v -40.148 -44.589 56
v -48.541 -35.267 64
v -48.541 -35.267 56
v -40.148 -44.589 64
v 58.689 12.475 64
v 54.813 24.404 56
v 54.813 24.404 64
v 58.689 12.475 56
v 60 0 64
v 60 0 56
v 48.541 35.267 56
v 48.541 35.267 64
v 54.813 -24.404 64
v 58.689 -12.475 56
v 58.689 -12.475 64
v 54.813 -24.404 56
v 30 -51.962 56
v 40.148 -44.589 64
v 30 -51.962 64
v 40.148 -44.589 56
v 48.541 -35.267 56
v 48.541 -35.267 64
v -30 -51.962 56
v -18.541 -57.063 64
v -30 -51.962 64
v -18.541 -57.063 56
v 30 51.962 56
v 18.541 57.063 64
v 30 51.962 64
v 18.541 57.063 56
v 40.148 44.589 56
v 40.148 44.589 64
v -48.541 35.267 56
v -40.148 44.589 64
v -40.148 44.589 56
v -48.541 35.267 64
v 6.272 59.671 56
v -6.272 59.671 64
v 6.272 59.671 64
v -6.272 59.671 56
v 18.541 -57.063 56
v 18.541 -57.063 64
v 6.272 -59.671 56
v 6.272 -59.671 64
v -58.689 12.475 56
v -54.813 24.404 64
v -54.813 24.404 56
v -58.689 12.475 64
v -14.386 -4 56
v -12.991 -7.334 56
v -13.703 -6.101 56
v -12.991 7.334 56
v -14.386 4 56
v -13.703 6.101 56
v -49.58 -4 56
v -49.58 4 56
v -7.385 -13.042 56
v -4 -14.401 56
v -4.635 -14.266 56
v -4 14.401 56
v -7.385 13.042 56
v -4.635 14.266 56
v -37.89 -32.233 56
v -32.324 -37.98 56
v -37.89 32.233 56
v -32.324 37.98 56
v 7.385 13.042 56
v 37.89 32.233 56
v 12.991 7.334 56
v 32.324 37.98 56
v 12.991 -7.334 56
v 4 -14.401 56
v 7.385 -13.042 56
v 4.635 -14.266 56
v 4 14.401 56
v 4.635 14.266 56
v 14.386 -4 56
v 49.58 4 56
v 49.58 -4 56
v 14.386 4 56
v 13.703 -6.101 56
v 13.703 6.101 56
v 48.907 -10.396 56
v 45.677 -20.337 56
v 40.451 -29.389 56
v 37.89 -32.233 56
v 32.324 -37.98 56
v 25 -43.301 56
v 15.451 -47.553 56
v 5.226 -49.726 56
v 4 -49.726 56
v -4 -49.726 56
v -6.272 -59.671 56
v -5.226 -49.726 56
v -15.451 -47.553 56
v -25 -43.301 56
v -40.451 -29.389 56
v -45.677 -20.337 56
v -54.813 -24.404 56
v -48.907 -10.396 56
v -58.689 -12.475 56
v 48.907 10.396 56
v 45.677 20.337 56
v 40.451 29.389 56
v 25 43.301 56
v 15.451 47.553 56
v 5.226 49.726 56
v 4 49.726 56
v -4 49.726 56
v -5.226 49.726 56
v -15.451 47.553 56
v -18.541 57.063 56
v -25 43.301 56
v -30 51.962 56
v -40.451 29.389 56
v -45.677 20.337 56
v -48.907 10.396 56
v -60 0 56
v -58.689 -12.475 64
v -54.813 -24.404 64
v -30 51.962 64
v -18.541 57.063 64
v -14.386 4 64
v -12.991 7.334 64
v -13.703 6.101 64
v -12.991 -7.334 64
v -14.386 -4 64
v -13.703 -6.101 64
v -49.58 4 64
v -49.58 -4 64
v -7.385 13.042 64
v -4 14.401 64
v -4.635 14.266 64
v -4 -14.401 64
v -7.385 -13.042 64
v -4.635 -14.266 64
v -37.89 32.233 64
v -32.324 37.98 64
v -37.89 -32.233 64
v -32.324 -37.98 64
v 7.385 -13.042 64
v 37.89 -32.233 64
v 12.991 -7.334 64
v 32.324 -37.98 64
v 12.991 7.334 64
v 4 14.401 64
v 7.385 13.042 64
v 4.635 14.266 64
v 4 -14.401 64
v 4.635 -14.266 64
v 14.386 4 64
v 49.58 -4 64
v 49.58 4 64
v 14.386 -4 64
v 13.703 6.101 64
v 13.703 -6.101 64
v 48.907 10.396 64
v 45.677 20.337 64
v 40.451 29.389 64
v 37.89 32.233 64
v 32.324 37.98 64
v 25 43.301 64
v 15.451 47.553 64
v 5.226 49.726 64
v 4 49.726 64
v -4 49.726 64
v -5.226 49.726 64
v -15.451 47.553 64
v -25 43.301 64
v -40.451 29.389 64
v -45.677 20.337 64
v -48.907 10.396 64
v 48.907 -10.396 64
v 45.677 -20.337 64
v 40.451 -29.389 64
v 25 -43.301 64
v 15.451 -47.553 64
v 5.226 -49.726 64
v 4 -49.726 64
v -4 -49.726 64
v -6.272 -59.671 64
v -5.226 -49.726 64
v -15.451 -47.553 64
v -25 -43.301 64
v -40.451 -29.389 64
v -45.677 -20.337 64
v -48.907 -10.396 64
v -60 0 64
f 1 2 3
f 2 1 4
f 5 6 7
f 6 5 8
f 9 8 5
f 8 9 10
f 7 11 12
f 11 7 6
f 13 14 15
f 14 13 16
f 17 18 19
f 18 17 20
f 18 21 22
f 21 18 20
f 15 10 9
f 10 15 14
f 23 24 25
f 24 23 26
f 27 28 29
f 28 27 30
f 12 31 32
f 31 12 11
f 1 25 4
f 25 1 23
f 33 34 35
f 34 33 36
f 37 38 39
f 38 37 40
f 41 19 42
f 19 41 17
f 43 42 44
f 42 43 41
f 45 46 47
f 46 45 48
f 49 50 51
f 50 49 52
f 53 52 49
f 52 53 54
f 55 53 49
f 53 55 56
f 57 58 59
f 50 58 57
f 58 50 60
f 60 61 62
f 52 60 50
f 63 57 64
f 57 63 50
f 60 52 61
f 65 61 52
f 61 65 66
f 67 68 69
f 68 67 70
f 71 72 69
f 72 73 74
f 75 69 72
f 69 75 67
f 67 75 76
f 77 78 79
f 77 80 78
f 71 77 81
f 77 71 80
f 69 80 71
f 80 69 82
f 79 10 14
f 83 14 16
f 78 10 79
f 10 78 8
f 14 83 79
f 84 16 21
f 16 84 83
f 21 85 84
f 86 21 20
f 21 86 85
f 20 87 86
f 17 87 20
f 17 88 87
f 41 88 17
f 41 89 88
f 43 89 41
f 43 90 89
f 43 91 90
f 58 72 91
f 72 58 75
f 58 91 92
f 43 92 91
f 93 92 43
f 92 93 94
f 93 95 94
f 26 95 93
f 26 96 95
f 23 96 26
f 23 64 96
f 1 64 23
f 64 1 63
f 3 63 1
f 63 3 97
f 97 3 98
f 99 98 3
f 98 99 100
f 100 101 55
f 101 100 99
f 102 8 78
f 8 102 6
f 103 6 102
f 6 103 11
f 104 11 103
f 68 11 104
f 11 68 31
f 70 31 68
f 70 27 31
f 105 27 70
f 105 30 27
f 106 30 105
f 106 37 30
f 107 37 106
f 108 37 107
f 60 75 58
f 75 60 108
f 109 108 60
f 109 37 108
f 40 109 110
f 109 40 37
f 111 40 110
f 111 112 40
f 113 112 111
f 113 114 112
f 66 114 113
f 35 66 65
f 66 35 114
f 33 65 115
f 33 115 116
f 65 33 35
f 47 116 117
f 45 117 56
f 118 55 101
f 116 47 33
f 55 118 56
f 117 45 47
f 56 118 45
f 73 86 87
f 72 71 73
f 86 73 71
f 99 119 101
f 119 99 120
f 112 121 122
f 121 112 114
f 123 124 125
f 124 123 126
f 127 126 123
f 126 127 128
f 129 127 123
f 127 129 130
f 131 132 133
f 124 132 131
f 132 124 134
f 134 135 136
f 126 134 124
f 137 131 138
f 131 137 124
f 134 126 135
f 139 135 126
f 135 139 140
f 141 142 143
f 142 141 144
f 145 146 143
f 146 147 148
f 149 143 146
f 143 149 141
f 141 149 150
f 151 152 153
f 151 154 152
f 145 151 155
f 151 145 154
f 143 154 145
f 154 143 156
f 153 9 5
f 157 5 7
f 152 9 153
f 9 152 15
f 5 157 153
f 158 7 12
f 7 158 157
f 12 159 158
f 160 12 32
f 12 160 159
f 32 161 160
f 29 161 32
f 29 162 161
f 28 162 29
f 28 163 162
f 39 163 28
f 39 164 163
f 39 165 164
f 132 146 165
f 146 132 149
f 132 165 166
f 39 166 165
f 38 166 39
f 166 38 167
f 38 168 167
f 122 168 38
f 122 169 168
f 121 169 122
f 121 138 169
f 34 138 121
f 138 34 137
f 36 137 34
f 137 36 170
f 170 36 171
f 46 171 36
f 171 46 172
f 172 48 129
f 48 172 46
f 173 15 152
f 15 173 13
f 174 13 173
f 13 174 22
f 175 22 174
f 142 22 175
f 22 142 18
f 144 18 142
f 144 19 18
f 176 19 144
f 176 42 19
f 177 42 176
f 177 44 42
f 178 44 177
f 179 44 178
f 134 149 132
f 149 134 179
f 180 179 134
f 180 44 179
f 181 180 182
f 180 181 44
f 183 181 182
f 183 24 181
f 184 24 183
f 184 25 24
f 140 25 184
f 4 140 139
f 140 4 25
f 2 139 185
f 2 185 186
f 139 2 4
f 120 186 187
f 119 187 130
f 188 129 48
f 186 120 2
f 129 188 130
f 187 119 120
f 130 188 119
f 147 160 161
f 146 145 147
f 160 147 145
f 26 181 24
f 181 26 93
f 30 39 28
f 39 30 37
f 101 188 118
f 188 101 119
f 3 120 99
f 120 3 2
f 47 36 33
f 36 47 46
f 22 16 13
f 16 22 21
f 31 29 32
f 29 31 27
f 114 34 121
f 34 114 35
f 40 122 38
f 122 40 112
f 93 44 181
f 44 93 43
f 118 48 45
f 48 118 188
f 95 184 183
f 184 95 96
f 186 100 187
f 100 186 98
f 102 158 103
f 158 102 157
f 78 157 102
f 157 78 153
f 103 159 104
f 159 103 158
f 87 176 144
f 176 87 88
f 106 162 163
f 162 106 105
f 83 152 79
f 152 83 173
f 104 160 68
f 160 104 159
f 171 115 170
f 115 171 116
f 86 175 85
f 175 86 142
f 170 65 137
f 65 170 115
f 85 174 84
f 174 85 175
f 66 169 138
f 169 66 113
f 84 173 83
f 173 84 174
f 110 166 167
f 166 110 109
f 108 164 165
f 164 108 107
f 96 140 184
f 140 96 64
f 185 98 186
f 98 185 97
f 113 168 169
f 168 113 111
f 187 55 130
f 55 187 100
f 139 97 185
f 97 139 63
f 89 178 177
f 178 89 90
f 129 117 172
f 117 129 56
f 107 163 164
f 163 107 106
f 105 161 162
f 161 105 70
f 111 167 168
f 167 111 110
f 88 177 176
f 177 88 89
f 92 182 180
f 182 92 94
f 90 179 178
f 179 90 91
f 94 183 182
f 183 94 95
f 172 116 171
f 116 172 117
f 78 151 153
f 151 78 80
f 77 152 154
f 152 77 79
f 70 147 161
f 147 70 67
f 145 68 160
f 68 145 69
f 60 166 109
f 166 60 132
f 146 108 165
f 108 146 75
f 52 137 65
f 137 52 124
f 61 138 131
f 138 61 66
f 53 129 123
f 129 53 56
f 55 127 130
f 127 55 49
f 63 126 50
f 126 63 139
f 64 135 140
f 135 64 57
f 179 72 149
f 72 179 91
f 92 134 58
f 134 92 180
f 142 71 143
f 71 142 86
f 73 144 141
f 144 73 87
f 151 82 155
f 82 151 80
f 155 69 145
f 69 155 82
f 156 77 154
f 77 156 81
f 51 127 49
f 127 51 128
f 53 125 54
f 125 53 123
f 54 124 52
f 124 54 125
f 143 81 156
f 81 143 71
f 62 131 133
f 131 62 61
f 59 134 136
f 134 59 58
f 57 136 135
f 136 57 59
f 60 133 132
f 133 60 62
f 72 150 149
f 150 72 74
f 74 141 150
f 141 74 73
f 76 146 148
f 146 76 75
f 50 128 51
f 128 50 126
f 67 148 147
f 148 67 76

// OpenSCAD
/* doodle-meta {"version":1,"parameters":{"outer_diameter":{"label":"Outer Diameter","description":"Overall diameter of the wheel rim","unit":"mm","feature":"rim_od"},"rim_thickness":{"label":"Rim Thickness","description":"Radial thickness of the rim ring","unit":"mm","feature":"rim_thickness"},"wheel_width":{"label":"Wheel Width","description":"Axial thickness of the wheel (height along Z)","unit":"mm","feature":"wheel_width"},"hub_diameter":{"label":"Hub Diameter","description":"Diameter of the central hub","unit":"mm","feature":"hub_diameter"},"spoke_count":{"label":"Spoke Count","description":"Number of radial spokes","unit":"count","feature":"spokes"},"spoke_width":{"label":"Spoke Width","description":"Width of each spoke","unit":"mm","feature":"spokes"}},"features":{"rim_od":{"kind":"dimension","axis":"x","label":"Outer Diameter"},"rim_thickness":{"kind":"dimension","axis":"x","label":"Rim Thickness"},"wheel_width":{"kind":"dimension","axis":"z","label":"Wheel Width"},"hub_diameter":{"kind":"dimension","axis":"x","label":"Hub Diameter"},"spokes":{"kind":"region","label":"Spokes","min":[{"parameter":"outer_diameter","scale":-0.5,"offset":0},{"parameter":"outer_diameter","scale":-0.5,"offset":0},0],"max":[{"parameter":"outer_diameter","scale":0.5,"offset":0},{"parameter":"outer_diameter","scale":0.5,"offset":0},{"parameter":"wheel_width","scale":1,"offset":0}]}}} */

// Parameters
outer_diameter = 120;
rim_thickness = 10;
wheel_width = 8;
hub_diameter = 30;
spoke_count = 8;
spoke_width = 8;

// Derived values
outer_radius = outer_diameter / 2;
inner_radius = outer_radius - rim_thickness;
hub_radius = hub_diameter / 2;
spoke_overlap = 3; // overlap into hub and rim for watertight connection
spoke_length = inner_radius - hub_radius + 2 * spoke_overlap;

// The wheel's circular face lies in the XY plane (front view looks down Y).
// The wheel axis is along Z (vertical). Build plate is Z=0, so the wheel
// rests on its edge: lowest point of the rim at Z=0.

// Modules (built with axis along Z, extruded along Z)

module rim() {
    difference() {
        cylinder(h = wheel_width, r = outer_radius, center = true);
        cylinder(h = wheel_width + 2, r = inner_radius, center = true);
    }
}

module hub() {
    cylinder(h = wheel_width, r = hub_radius, center = true);
}

module spoke() {
    // Spoke extends from hub_radius - overlap to inner_radius + overlap
    // Centered on X axis, extending in +X direction.
    // Flat plate: width along Y, thickness along Z.
    translate([hub_radius - spoke_overlap + spoke_length / 2, 0, 0]) {
        cube([spoke_length, spoke_width, wheel_width], center = true);
    }
}

module spokes() {
    for (i = [0 : spoke_count - 1]) {
        rotate([0, 0, i * (360 / spoke_count)]) {
            spoke();
        }
    }
}

// Main Design
// Build the wheel with its axis along Z (cylinders default axis is Z).
// The circular face is in the XY plane; thickness is along Z.
// Translate up by outer_radius so the lowest point of the rim sits at Z=0.

translate([0, 0, outer_radius]) {
    union() {
        rim();
        hub();
        spokes();
    }
}
